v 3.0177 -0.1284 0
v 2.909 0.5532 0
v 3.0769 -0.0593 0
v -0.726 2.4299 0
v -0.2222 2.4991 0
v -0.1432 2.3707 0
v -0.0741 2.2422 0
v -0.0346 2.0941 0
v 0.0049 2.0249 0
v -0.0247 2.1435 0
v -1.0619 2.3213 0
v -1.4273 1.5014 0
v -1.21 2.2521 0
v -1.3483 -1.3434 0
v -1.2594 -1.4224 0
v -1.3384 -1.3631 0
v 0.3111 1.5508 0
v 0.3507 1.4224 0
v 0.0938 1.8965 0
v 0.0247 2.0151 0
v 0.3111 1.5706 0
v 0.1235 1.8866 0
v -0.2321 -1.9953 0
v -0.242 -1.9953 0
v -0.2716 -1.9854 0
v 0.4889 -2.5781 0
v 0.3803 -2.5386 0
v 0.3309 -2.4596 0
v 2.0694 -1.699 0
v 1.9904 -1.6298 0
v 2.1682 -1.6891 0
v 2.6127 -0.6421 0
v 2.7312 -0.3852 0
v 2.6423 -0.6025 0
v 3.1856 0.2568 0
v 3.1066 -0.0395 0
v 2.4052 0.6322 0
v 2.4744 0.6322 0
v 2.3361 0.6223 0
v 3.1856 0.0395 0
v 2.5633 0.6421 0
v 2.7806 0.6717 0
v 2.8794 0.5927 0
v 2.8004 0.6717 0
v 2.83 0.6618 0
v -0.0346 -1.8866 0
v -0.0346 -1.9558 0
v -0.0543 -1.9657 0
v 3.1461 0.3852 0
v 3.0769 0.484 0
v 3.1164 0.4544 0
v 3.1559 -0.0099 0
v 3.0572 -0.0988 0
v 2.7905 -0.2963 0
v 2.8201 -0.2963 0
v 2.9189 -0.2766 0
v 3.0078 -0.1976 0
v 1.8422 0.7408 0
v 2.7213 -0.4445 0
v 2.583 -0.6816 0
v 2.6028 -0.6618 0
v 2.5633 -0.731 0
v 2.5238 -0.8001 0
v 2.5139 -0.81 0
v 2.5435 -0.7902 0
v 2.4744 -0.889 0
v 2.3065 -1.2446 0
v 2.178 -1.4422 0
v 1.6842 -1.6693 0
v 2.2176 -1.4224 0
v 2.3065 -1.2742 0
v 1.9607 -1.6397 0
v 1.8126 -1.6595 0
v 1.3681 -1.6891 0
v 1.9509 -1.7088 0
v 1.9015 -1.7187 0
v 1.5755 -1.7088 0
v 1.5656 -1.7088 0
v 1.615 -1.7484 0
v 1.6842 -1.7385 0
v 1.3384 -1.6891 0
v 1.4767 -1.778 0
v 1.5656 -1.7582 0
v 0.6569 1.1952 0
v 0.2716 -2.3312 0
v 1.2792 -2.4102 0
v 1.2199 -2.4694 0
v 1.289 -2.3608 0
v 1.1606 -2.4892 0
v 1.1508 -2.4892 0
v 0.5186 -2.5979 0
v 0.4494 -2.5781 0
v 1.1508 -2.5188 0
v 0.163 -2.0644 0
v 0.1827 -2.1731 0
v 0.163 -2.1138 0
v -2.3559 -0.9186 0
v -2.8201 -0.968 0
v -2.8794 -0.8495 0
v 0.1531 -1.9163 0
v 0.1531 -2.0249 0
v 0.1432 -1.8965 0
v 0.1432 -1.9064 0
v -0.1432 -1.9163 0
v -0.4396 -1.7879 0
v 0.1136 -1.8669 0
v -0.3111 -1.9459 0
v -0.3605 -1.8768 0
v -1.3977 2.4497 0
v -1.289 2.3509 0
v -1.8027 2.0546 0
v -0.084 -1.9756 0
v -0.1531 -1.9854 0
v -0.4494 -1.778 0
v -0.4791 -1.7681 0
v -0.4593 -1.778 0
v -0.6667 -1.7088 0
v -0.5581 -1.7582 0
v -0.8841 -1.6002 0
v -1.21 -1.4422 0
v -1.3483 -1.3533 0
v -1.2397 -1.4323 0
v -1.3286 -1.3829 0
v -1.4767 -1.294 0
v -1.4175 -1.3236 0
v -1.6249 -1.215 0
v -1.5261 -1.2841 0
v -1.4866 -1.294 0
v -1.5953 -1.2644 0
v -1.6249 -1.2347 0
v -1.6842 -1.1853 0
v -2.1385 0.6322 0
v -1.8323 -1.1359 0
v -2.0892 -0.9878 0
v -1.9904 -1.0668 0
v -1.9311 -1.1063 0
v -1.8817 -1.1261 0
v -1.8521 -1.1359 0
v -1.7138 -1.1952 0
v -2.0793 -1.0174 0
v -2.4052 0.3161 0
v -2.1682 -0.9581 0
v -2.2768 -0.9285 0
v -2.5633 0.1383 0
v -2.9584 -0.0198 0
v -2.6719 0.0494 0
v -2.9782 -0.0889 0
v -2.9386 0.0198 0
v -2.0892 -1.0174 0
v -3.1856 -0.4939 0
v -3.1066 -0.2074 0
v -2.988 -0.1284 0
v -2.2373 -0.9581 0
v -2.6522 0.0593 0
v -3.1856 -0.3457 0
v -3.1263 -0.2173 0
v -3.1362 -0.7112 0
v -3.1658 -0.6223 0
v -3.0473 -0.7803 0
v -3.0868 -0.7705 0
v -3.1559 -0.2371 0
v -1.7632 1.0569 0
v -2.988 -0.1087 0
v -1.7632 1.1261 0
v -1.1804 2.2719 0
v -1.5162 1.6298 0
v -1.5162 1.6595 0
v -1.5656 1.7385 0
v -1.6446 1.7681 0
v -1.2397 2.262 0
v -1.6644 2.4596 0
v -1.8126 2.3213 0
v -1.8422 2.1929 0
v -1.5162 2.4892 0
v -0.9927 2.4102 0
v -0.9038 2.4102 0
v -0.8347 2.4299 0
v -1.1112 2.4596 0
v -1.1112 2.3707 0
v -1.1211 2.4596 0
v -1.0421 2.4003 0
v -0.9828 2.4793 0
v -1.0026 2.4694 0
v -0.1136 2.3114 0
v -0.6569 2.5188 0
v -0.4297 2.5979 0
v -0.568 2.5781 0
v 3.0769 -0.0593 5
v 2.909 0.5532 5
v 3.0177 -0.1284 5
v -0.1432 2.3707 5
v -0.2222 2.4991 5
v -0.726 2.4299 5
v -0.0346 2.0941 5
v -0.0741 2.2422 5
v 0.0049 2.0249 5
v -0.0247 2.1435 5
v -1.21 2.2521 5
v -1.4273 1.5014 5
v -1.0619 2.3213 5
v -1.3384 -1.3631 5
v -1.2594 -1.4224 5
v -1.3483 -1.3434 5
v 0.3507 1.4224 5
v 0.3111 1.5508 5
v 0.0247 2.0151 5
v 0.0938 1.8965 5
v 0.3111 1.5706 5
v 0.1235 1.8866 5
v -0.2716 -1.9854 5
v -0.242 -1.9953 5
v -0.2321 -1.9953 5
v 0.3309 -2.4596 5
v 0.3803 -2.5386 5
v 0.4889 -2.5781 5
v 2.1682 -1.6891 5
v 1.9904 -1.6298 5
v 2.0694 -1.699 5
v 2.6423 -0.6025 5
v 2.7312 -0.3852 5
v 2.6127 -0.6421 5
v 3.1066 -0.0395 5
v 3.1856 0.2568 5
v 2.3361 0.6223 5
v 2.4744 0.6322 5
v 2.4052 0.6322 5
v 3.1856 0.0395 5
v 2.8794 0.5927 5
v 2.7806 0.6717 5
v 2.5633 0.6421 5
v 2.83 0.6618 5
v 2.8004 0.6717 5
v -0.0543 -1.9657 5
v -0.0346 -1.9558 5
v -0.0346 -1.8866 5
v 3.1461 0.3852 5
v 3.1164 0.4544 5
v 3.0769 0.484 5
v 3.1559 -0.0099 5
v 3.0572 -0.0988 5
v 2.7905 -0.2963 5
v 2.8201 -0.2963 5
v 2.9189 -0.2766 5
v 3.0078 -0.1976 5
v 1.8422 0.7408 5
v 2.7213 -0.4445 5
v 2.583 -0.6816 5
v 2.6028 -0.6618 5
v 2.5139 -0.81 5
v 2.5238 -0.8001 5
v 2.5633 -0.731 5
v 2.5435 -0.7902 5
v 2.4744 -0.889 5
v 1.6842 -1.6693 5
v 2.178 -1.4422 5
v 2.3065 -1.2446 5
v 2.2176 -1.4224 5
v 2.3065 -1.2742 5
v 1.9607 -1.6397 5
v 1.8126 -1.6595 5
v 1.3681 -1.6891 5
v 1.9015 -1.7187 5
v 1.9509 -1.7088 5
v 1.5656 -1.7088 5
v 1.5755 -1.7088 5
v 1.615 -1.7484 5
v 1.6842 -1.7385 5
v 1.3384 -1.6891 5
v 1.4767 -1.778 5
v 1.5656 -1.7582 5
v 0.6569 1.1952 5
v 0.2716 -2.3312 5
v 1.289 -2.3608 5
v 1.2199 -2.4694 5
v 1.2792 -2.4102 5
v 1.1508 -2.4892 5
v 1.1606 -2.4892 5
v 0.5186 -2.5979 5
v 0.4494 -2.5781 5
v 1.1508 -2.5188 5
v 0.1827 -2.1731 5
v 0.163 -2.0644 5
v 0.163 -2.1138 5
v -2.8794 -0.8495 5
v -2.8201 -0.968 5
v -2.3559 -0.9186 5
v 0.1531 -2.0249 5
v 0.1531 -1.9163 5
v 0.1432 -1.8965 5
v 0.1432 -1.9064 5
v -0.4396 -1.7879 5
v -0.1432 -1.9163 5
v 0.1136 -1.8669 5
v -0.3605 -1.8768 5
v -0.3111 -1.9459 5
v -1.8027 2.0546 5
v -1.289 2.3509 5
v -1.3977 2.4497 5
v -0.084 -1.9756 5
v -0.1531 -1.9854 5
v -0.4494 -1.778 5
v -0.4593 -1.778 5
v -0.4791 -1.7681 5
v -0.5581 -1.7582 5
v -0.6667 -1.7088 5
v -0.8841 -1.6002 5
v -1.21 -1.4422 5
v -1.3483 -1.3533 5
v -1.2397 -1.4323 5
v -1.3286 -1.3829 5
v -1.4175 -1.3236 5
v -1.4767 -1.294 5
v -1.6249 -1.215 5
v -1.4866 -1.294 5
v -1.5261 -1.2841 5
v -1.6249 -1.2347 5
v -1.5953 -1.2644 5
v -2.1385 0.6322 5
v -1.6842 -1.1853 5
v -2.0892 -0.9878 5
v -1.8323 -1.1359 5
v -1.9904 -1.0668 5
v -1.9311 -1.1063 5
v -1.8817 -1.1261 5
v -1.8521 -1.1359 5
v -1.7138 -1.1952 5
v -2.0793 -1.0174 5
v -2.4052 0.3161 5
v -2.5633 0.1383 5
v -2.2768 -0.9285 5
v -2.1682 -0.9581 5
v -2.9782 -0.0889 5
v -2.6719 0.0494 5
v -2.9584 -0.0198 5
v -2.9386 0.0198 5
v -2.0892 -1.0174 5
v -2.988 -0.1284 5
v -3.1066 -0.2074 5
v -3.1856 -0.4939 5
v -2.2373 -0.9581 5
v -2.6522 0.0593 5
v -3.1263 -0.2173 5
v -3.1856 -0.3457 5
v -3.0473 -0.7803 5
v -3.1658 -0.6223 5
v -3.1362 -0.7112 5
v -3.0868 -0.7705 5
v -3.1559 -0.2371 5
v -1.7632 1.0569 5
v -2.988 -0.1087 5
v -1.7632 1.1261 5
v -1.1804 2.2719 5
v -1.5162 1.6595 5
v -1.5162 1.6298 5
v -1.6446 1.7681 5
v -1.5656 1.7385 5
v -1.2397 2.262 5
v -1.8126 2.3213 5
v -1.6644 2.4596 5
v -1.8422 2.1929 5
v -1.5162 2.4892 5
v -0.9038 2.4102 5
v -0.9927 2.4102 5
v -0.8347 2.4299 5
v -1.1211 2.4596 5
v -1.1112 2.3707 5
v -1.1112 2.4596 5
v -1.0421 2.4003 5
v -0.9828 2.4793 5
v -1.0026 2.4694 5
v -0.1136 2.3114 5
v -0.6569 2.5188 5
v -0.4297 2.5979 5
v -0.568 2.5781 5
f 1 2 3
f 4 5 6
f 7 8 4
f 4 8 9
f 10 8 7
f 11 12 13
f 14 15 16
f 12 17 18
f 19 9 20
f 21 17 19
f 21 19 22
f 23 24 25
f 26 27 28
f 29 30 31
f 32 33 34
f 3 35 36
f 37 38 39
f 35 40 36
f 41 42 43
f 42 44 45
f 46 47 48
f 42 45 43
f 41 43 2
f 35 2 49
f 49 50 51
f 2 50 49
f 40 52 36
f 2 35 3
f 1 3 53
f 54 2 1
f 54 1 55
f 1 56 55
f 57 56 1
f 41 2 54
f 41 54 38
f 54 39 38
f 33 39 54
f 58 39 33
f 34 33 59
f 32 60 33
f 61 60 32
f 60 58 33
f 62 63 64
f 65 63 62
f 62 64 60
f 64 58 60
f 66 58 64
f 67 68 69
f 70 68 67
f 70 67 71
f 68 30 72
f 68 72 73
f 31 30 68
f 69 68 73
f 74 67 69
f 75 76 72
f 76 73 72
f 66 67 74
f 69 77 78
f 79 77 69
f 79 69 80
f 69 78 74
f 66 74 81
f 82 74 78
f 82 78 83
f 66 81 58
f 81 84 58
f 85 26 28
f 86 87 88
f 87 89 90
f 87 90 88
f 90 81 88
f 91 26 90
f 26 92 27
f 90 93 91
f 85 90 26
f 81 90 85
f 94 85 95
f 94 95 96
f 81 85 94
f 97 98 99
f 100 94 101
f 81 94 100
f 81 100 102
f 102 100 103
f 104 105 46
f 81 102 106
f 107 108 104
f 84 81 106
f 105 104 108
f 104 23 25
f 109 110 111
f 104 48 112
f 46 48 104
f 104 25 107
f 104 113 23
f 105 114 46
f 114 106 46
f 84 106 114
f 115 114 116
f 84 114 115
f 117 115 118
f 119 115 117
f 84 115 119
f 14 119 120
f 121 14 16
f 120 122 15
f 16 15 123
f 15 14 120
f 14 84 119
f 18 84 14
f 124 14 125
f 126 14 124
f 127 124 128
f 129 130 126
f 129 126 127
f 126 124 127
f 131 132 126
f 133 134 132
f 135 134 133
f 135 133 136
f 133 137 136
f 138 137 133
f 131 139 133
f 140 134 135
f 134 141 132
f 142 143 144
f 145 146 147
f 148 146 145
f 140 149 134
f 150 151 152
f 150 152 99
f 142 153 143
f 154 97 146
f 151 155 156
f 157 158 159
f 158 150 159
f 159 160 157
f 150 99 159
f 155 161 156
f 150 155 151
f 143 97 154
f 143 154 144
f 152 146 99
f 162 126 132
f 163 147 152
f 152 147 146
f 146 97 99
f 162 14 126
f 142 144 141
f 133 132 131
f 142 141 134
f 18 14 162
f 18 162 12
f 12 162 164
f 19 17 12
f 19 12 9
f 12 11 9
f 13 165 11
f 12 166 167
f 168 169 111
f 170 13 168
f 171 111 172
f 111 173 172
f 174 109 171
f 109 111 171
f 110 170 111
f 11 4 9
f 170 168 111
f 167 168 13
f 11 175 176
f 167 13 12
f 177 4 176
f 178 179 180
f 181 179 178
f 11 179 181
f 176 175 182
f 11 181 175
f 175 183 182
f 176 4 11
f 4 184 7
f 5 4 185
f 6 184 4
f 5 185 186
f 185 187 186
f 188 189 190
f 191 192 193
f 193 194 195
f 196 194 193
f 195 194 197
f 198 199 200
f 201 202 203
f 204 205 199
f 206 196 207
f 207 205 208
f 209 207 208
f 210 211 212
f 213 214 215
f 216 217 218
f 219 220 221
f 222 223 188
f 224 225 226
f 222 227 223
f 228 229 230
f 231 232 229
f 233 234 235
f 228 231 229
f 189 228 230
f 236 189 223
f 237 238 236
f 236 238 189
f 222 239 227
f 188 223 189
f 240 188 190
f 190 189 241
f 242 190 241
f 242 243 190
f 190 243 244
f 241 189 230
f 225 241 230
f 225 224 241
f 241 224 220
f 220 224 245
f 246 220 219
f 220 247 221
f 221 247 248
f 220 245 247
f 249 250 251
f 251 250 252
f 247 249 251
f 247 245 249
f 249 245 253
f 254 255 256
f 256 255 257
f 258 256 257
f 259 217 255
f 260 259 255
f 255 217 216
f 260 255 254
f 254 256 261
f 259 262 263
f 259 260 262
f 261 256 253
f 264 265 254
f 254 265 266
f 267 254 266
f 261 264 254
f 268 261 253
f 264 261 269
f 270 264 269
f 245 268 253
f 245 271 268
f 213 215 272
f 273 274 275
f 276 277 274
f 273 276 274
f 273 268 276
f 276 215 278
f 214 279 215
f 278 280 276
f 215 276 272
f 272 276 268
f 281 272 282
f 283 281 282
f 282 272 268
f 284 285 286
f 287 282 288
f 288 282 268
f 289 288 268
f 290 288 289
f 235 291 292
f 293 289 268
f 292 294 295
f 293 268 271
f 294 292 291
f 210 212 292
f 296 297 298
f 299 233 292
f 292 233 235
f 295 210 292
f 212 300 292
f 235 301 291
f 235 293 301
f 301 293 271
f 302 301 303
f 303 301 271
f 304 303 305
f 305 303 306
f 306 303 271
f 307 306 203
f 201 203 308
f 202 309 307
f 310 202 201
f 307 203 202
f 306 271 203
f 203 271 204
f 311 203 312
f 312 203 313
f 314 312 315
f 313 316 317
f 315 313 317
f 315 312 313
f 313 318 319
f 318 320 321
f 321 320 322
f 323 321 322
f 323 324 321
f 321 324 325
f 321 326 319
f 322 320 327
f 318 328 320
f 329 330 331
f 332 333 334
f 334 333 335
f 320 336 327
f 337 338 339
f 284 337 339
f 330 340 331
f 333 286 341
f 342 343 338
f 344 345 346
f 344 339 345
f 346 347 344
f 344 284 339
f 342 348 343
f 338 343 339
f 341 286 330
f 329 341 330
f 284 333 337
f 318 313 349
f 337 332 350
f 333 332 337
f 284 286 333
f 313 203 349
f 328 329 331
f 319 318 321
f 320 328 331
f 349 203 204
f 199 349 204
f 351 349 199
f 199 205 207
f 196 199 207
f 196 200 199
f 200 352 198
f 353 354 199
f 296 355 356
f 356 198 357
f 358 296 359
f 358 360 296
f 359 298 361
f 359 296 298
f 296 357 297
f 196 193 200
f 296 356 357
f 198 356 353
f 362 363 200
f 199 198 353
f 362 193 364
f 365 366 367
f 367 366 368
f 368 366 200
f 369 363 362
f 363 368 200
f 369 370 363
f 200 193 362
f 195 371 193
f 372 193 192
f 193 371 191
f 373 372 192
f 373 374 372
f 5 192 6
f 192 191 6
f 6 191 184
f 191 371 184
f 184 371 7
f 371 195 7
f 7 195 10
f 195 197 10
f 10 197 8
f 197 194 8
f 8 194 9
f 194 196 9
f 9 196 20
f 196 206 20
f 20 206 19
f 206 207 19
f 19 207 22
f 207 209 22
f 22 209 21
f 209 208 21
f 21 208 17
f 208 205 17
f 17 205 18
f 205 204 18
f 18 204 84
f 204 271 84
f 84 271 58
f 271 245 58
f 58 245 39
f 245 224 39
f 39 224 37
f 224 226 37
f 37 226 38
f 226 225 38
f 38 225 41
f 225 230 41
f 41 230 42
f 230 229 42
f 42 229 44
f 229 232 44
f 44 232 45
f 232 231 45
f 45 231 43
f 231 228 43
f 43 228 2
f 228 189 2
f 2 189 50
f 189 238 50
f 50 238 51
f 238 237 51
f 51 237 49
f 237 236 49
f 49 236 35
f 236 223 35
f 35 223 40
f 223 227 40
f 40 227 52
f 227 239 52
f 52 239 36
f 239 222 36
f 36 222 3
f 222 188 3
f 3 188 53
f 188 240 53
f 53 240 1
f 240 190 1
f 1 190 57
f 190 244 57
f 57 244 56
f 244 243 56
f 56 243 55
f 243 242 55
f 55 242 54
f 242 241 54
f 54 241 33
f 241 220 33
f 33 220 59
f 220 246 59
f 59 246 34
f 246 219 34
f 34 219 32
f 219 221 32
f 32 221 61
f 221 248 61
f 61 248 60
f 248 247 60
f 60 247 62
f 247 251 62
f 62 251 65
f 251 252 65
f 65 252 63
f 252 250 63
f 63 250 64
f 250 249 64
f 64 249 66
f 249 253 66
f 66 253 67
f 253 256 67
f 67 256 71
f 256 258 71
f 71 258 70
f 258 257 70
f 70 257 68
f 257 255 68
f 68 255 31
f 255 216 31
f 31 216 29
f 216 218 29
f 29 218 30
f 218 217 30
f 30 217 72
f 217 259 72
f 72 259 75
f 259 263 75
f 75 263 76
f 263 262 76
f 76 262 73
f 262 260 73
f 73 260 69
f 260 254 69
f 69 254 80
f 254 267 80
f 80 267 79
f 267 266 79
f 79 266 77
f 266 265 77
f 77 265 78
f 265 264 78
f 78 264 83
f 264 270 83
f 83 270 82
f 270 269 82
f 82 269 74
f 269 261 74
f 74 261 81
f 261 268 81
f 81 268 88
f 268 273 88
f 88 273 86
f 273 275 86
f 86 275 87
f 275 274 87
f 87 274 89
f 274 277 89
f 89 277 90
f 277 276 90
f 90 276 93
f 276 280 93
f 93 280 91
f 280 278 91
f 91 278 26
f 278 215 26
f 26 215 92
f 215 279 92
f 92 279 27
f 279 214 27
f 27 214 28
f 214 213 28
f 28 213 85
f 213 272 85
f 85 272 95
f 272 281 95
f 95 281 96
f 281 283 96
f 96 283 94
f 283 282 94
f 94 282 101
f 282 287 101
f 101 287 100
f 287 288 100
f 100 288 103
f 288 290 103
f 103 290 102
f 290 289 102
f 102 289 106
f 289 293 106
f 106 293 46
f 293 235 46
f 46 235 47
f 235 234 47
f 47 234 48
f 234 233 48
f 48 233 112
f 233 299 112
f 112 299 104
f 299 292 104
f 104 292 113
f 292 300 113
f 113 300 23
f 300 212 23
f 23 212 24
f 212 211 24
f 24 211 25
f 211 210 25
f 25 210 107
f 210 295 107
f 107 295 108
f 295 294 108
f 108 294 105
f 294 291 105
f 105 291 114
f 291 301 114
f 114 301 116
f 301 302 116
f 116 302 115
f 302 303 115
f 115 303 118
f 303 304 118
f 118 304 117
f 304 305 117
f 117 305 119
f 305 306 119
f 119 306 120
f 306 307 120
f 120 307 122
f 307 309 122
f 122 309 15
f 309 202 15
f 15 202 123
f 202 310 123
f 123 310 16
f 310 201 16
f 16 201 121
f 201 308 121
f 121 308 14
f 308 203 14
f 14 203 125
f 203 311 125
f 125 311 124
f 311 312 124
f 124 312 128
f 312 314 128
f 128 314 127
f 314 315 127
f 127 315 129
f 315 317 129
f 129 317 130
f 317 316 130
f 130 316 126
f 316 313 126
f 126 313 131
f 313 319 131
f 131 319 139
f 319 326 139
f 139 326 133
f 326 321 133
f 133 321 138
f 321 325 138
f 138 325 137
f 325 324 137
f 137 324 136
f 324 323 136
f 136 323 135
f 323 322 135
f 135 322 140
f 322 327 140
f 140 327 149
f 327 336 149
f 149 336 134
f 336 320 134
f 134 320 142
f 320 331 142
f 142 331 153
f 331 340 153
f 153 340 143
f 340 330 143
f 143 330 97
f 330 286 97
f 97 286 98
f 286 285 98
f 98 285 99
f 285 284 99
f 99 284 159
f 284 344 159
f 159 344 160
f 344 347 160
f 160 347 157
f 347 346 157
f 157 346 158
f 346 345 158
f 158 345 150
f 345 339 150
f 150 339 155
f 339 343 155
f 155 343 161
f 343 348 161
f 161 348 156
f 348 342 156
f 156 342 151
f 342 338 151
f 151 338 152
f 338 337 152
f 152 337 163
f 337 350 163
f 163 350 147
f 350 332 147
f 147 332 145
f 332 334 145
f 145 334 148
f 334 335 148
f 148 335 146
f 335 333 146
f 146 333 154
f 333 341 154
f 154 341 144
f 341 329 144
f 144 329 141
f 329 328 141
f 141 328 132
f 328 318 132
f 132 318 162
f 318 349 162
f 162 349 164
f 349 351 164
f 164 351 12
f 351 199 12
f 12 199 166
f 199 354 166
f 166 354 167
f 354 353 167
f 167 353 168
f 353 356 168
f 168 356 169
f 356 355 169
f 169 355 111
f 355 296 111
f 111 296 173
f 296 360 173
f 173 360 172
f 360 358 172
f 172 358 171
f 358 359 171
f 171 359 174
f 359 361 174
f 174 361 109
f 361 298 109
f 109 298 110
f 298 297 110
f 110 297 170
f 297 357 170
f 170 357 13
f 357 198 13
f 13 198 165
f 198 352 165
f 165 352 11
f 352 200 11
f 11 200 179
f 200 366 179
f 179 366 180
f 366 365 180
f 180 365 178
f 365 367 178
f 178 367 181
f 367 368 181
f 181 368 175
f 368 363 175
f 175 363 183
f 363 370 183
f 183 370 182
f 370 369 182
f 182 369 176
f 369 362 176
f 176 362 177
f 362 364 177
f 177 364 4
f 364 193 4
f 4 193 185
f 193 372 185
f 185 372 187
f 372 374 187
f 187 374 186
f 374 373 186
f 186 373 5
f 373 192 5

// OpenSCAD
// Module names are of the form poly_<inkscape-path-id>().  As a result,
// you can associate a polygon in this OpenSCAD program with the corresponding
// SVG element in the Inkscape document by looking for the XML element with
// the attribute id="inkscape-path-id".

// fudge value is used to ensure that subtracted solids are a tad taller
// in the z dimension than the polygon being subtracted from.  This helps
// keep the resulting .stl file manifold.
fudge = 0.1;

module poly_path4229(h)
{
  scale([25.4/90, -25.4/90, 1]) union()
  {
    linear_extrude(height=h)
      polygon([[8.277500,-2.205000],[8.522500,-2.240000],[8.767500,-2.240000],[9.082500,-2.275000],[9.852500,-2.380000],[9.922500,-2.380000],[10.027500,-2.345000],[10.202500,-2.100000],[10.307500,-1.960000],[10.902500,-1.715000],[11.042500,-1.610000],[11.147500,-1.365000],[11.287500,-0.910000],[11.287500,-0.140000],[11.182500,0.035000],[11.007500,0.140000],[10.902500,0.210000],[10.832500,0.350000],[10.692500,0.455000],[10.657500,0.700000],[10.342500,0.980000],[9.992500,1.050000],[9.887500,1.050000],[9.677500,1.365000],[9.642500,1.575000],[9.362500,2.135000],[9.257500,2.275000],[9.222500,2.345000],[9.187500,2.380000],[9.152500,2.415000],[9.082500,2.590000],[9.012500,2.800000],[8.942500,2.835000],[8.907500,2.870000],[8.767500,3.150000],[8.172500,4.410000],[8.172500,4.515000],[7.857500,5.040000],[7.717500,5.110000],[7.682500,5.985000],[7.332500,6.020000],[7.052500,5.775000],[6.947500,5.810000],[6.912500,6.055000],[6.737500,6.090000],[6.422500,5.880000],[5.967500,5.915000],[5.967500,6.160000],[5.722500,6.195000],[5.582500,6.055000],[5.547500,6.055000],[5.547500,6.230000],[5.232500,6.300000],[4.847500,5.985000],[4.742500,5.985000],[4.567500,8.365000],[4.532500,8.540000],[4.322500,8.750000],[4.112500,8.820000],[4.077500,8.820000],[4.077500,8.925000],[1.837500,9.205000],[1.732500,9.135000],[1.592500,9.135000],[1.347500,8.995000],[1.172500,8.715000],[0.962500,8.260000],[0.647500,7.700000],[0.612500,7.595000],[0.577500,7.490000],[0.577500,7.315000],[0.542500,7.175000],[0.542500,7.000000],[0.542500,6.825000],[0.542500,6.790000],[0.507500,6.755000],[0.507500,6.720000],[0.437500,6.650000],[0.402500,6.615000],[-0.122500,6.685000],[-0.122500,6.930000],[-0.192500,6.965000],[-0.297500,7.000000],[-0.367500,6.930000],[-0.507500,6.790000],[-0.542500,7.035000],[-0.822500,7.070000],[-0.857500,7.070000],[-0.962500,7.035000],[-1.102500,6.895000],[-1.277500,6.650000],[-1.557500,6.335000],[-1.592500,6.300000],[-1.627500,6.300000],[-1.697500,6.265000],[-1.977500,6.230000],[-2.362500,6.055000],[-3.132500,5.670000],[-4.217500,5.145000],[-4.287500,5.110000],[-4.392500,5.075000],[-4.462500,5.040000],[-4.707500,4.900000],[-4.742500,4.830000],[-4.777500,4.795000],[-4.777500,4.760000],[-5.022500,4.690000],[-5.232500,4.585000],[-5.267500,4.585000],[-5.407500,4.550000],[-5.652500,4.480000],[-5.757500,4.375000],[-5.757500,4.305000],[-5.967500,4.200000],[-6.072500,4.235000],[-6.492500,4.025000],[-6.562500,4.025000],[-6.667500,3.990000],[-6.842500,3.920000],[-7.052500,3.780000],[-7.367500,3.605000],[-7.402500,3.605000],[-7.402500,3.500000],[-7.682500,3.395000],[-7.927500,3.395000],[-8.067500,3.290000],[-8.347500,3.255000],[-9.992500,3.430000],[-10.202500,3.010000],[-10.797500,2.765000],[-10.937500,2.730000],[-11.112500,2.520000],[-11.217500,2.205000],[-11.287500,1.750000],[-11.287500,1.225000],[-11.182500,0.840000],[-11.077500,0.770000],[-11.007500,0.735000],[-10.587500,0.455000],[-10.587500,0.420000],[-10.587500,0.385000],[-10.552500,0.315000],[-10.482500,0.070000],[-10.412500,-0.070000],[-9.467500,-0.175000],[-9.397500,-0.210000],[-9.082500,-0.490000],[-8.522500,-1.120000],[-7.577500,-2.240000],[-6.247500,-3.745000],[-6.247500,-3.990000],[-5.057500,-5.320000],[-5.372500,-5.775000],[-5.372500,-5.880000],[-5.547500,-6.160000],[-5.827500,-6.265000],[-6.387500,-7.280000],[-6.527500,-7.770000],[-6.422500,-8.225000],[-5.897500,-8.715000],[-5.372500,-8.820000],[-4.952500,-8.680000],[-4.567500,-8.330000],[-4.392500,-8.015000],[-4.287500,-7.980000],[-4.182500,-8.050000],[-3.762500,-8.225000],[-3.937500,-8.400000],[-3.972500,-8.715000],[-3.937500,-8.715000],[-3.692500,-8.505000],[-3.517500,-8.540000],[-3.552500,-8.750000],[-3.482500,-8.785000],[-3.202500,-8.540000],[-2.957500,-8.610000],[-2.572500,-8.610000],[-2.327500,-8.925000],[-2.012500,-9.135000],[-1.522500,-9.205000],[-0.787500,-8.855000],[-0.507500,-8.400000],[-0.402500,-8.190000],[-0.262500,-7.945000],[-0.087500,-7.595000],[-0.122500,-7.420000],[0.017500,-7.175000],[0.087500,-7.140000],[0.332500,-6.720000],[0.437500,-6.685000],[1.102500,-5.565000],[1.102500,-5.495000],[1.242500,-5.040000],[2.327500,-4.235000],[6.527500,-2.625000],[7.402500,-2.415000],[8.277500,-2.205000]]);
  }
}

poly_path4229(5);
